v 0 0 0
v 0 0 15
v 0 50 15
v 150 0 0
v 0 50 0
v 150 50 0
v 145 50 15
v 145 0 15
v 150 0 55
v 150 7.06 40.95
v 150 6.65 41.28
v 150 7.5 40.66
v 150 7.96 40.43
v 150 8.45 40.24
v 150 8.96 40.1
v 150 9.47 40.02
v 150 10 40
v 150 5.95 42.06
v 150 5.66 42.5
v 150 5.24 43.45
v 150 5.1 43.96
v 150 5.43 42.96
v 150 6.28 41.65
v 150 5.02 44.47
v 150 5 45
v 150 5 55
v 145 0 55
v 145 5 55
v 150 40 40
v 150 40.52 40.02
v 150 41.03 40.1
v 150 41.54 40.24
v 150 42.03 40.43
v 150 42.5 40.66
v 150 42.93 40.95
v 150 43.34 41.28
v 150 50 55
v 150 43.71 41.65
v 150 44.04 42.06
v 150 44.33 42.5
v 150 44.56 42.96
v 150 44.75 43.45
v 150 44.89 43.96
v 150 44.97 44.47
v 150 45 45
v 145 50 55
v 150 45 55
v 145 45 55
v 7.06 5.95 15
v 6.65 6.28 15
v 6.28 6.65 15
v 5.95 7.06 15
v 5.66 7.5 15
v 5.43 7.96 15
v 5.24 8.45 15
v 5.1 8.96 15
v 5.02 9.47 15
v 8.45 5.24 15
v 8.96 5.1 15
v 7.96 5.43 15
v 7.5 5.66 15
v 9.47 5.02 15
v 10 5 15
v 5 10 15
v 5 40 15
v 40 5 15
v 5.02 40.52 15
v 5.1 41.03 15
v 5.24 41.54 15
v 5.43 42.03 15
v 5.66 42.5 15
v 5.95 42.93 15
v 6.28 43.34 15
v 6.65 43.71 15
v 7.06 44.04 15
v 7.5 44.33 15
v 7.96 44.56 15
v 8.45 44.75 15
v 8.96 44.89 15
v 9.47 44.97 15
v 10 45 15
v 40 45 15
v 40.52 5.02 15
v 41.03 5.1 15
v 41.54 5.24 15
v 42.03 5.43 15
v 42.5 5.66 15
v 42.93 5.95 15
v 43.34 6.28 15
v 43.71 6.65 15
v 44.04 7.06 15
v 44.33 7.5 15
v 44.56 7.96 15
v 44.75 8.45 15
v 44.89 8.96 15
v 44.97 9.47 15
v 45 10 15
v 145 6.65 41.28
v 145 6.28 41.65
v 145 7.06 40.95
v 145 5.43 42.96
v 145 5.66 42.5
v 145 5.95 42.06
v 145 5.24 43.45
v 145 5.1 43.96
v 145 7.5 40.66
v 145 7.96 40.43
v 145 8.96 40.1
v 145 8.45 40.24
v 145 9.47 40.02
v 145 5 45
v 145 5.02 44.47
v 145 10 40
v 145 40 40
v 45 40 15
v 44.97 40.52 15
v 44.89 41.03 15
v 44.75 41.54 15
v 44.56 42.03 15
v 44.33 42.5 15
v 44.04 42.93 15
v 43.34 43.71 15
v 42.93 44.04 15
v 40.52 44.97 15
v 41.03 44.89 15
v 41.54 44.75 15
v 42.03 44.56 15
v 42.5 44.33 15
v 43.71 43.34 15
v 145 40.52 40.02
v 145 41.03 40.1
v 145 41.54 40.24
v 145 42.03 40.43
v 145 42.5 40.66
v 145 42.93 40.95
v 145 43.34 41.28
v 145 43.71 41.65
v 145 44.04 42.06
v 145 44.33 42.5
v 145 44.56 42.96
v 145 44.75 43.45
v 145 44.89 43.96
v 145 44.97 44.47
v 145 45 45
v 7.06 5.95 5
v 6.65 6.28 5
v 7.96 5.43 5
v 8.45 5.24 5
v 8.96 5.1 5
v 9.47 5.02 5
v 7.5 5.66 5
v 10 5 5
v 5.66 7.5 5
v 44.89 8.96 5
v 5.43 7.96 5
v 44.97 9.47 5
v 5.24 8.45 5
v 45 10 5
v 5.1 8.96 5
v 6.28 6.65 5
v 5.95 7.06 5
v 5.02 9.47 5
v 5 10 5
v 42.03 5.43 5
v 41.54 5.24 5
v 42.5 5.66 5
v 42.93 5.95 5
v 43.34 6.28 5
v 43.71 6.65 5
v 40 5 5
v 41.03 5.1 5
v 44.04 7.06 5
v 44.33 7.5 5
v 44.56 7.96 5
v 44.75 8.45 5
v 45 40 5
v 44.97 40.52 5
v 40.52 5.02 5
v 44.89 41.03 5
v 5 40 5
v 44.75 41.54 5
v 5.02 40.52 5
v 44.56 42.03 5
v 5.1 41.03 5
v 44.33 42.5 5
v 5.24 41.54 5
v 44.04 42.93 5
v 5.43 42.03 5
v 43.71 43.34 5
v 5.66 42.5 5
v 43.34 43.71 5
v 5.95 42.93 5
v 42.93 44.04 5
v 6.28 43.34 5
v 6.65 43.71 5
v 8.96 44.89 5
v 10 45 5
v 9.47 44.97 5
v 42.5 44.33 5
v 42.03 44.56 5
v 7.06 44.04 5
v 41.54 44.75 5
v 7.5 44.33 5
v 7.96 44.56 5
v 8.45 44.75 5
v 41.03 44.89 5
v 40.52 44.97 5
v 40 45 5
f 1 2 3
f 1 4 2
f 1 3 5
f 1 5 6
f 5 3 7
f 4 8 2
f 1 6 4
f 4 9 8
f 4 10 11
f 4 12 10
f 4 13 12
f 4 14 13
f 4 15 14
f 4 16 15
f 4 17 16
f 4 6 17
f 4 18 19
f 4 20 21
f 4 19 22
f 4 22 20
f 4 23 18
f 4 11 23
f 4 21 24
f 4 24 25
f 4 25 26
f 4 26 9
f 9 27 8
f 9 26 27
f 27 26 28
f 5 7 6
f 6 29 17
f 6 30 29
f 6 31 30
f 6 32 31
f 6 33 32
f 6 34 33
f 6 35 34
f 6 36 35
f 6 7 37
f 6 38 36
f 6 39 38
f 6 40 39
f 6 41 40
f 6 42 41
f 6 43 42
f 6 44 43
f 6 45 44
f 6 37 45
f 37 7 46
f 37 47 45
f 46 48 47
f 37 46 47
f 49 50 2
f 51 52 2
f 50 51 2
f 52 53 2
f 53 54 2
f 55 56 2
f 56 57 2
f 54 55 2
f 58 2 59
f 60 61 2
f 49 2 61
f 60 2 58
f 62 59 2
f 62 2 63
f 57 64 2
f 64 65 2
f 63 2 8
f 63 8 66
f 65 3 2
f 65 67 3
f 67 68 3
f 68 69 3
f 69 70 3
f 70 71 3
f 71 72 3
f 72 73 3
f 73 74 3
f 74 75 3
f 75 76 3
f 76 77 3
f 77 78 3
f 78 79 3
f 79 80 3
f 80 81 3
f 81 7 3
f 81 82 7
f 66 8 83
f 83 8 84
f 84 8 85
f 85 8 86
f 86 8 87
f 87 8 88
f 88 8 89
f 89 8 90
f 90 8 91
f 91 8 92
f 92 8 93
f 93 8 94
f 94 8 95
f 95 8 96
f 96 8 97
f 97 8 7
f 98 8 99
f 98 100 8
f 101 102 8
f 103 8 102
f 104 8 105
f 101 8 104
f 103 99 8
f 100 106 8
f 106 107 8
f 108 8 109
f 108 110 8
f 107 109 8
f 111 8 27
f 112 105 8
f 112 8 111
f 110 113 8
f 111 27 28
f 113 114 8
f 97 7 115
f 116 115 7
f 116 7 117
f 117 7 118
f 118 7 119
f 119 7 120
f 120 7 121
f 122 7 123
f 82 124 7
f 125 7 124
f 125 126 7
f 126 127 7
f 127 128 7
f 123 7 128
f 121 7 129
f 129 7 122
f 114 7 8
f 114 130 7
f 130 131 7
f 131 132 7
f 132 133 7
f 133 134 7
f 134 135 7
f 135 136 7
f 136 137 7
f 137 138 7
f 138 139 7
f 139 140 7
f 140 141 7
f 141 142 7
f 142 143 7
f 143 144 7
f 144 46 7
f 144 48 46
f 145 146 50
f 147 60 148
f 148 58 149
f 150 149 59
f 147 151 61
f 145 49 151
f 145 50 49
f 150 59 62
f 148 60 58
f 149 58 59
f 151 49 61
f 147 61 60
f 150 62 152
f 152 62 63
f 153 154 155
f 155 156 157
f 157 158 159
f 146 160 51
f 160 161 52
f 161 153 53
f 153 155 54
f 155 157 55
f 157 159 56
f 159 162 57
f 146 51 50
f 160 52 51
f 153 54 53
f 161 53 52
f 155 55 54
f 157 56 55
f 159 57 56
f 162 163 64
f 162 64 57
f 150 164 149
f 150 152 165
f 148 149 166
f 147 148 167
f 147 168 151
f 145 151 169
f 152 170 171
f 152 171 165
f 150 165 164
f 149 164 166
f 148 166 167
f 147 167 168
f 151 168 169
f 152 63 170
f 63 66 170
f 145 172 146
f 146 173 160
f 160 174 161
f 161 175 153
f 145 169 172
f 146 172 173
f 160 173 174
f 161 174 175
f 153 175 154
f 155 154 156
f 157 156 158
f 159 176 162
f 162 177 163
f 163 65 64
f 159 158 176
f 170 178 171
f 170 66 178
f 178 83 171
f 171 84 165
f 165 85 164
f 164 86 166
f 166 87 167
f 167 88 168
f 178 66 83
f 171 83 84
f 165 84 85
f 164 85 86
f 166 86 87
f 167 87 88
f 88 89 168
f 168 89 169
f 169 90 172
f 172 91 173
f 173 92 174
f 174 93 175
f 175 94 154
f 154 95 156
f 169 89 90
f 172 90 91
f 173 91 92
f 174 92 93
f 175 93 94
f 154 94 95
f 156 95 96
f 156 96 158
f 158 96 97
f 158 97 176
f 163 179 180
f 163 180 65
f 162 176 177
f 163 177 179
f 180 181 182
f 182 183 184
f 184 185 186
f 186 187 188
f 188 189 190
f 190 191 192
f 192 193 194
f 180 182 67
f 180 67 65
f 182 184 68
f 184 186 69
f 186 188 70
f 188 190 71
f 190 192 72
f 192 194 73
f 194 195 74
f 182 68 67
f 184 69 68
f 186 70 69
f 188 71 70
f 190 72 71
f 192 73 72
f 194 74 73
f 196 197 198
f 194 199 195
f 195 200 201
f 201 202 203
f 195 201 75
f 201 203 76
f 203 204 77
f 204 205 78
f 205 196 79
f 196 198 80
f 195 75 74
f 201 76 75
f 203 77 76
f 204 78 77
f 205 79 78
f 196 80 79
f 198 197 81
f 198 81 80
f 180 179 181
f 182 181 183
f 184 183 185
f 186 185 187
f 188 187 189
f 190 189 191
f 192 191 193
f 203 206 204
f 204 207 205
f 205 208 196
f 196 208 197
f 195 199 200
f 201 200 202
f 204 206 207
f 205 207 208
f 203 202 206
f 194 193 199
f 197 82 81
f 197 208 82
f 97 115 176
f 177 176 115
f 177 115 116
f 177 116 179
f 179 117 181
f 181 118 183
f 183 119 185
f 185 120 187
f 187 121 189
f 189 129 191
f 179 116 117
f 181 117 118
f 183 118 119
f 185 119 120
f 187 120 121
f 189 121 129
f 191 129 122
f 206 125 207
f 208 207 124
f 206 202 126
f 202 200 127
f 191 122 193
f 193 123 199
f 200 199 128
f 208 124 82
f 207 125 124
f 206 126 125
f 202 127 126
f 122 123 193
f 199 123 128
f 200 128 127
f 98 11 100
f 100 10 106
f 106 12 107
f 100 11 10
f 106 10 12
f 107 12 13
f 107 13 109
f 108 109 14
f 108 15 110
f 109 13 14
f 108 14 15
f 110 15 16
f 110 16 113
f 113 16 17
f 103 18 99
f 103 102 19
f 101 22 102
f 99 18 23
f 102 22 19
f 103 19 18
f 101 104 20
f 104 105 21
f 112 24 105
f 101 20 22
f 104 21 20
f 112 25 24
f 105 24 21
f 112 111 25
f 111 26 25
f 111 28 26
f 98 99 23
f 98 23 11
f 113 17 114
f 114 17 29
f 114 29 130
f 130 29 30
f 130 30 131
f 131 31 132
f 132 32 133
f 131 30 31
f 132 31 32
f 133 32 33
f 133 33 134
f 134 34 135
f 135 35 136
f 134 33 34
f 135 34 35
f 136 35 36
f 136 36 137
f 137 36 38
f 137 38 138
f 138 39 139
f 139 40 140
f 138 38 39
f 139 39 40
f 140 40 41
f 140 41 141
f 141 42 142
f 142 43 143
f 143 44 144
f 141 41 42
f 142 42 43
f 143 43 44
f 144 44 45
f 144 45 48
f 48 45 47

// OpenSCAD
// file: rounded_rect.scad
// module for a rounded rectangle
// 14.11.2025
// Sebastian Weigl

module rr(l, w, r, h)
{
linear_extrude(height = h, center = false, convexity = 0)
  translate([r, r, 0])
  offset(r=r, $fn = 60) 
  square([l-(2*r), w-(2*r)]);
}

// to use this add
// use <rounded_rect.scad>
// and 
// rr(x_length,y_length,radius,height);
// main file
// simple stand for
// chopsticks
// version 1
// 03.05.2026 Sebastian Weigl

// // rr(x_length,y_length,radius,height);
$fn=64;
include <rounded_rect.scad>

border = 2;

difference(){
// outer form
cube([150,50,55],false);
// box form 1
translate([0,0,15])
cube([145,50,40],false);
// drip form
translate([5,5,5])
#rr(40,40,5,15);
//holding fork
translate([160,5,40])
rotate([0,-90,0])
rr(40,40,5,40);
}
